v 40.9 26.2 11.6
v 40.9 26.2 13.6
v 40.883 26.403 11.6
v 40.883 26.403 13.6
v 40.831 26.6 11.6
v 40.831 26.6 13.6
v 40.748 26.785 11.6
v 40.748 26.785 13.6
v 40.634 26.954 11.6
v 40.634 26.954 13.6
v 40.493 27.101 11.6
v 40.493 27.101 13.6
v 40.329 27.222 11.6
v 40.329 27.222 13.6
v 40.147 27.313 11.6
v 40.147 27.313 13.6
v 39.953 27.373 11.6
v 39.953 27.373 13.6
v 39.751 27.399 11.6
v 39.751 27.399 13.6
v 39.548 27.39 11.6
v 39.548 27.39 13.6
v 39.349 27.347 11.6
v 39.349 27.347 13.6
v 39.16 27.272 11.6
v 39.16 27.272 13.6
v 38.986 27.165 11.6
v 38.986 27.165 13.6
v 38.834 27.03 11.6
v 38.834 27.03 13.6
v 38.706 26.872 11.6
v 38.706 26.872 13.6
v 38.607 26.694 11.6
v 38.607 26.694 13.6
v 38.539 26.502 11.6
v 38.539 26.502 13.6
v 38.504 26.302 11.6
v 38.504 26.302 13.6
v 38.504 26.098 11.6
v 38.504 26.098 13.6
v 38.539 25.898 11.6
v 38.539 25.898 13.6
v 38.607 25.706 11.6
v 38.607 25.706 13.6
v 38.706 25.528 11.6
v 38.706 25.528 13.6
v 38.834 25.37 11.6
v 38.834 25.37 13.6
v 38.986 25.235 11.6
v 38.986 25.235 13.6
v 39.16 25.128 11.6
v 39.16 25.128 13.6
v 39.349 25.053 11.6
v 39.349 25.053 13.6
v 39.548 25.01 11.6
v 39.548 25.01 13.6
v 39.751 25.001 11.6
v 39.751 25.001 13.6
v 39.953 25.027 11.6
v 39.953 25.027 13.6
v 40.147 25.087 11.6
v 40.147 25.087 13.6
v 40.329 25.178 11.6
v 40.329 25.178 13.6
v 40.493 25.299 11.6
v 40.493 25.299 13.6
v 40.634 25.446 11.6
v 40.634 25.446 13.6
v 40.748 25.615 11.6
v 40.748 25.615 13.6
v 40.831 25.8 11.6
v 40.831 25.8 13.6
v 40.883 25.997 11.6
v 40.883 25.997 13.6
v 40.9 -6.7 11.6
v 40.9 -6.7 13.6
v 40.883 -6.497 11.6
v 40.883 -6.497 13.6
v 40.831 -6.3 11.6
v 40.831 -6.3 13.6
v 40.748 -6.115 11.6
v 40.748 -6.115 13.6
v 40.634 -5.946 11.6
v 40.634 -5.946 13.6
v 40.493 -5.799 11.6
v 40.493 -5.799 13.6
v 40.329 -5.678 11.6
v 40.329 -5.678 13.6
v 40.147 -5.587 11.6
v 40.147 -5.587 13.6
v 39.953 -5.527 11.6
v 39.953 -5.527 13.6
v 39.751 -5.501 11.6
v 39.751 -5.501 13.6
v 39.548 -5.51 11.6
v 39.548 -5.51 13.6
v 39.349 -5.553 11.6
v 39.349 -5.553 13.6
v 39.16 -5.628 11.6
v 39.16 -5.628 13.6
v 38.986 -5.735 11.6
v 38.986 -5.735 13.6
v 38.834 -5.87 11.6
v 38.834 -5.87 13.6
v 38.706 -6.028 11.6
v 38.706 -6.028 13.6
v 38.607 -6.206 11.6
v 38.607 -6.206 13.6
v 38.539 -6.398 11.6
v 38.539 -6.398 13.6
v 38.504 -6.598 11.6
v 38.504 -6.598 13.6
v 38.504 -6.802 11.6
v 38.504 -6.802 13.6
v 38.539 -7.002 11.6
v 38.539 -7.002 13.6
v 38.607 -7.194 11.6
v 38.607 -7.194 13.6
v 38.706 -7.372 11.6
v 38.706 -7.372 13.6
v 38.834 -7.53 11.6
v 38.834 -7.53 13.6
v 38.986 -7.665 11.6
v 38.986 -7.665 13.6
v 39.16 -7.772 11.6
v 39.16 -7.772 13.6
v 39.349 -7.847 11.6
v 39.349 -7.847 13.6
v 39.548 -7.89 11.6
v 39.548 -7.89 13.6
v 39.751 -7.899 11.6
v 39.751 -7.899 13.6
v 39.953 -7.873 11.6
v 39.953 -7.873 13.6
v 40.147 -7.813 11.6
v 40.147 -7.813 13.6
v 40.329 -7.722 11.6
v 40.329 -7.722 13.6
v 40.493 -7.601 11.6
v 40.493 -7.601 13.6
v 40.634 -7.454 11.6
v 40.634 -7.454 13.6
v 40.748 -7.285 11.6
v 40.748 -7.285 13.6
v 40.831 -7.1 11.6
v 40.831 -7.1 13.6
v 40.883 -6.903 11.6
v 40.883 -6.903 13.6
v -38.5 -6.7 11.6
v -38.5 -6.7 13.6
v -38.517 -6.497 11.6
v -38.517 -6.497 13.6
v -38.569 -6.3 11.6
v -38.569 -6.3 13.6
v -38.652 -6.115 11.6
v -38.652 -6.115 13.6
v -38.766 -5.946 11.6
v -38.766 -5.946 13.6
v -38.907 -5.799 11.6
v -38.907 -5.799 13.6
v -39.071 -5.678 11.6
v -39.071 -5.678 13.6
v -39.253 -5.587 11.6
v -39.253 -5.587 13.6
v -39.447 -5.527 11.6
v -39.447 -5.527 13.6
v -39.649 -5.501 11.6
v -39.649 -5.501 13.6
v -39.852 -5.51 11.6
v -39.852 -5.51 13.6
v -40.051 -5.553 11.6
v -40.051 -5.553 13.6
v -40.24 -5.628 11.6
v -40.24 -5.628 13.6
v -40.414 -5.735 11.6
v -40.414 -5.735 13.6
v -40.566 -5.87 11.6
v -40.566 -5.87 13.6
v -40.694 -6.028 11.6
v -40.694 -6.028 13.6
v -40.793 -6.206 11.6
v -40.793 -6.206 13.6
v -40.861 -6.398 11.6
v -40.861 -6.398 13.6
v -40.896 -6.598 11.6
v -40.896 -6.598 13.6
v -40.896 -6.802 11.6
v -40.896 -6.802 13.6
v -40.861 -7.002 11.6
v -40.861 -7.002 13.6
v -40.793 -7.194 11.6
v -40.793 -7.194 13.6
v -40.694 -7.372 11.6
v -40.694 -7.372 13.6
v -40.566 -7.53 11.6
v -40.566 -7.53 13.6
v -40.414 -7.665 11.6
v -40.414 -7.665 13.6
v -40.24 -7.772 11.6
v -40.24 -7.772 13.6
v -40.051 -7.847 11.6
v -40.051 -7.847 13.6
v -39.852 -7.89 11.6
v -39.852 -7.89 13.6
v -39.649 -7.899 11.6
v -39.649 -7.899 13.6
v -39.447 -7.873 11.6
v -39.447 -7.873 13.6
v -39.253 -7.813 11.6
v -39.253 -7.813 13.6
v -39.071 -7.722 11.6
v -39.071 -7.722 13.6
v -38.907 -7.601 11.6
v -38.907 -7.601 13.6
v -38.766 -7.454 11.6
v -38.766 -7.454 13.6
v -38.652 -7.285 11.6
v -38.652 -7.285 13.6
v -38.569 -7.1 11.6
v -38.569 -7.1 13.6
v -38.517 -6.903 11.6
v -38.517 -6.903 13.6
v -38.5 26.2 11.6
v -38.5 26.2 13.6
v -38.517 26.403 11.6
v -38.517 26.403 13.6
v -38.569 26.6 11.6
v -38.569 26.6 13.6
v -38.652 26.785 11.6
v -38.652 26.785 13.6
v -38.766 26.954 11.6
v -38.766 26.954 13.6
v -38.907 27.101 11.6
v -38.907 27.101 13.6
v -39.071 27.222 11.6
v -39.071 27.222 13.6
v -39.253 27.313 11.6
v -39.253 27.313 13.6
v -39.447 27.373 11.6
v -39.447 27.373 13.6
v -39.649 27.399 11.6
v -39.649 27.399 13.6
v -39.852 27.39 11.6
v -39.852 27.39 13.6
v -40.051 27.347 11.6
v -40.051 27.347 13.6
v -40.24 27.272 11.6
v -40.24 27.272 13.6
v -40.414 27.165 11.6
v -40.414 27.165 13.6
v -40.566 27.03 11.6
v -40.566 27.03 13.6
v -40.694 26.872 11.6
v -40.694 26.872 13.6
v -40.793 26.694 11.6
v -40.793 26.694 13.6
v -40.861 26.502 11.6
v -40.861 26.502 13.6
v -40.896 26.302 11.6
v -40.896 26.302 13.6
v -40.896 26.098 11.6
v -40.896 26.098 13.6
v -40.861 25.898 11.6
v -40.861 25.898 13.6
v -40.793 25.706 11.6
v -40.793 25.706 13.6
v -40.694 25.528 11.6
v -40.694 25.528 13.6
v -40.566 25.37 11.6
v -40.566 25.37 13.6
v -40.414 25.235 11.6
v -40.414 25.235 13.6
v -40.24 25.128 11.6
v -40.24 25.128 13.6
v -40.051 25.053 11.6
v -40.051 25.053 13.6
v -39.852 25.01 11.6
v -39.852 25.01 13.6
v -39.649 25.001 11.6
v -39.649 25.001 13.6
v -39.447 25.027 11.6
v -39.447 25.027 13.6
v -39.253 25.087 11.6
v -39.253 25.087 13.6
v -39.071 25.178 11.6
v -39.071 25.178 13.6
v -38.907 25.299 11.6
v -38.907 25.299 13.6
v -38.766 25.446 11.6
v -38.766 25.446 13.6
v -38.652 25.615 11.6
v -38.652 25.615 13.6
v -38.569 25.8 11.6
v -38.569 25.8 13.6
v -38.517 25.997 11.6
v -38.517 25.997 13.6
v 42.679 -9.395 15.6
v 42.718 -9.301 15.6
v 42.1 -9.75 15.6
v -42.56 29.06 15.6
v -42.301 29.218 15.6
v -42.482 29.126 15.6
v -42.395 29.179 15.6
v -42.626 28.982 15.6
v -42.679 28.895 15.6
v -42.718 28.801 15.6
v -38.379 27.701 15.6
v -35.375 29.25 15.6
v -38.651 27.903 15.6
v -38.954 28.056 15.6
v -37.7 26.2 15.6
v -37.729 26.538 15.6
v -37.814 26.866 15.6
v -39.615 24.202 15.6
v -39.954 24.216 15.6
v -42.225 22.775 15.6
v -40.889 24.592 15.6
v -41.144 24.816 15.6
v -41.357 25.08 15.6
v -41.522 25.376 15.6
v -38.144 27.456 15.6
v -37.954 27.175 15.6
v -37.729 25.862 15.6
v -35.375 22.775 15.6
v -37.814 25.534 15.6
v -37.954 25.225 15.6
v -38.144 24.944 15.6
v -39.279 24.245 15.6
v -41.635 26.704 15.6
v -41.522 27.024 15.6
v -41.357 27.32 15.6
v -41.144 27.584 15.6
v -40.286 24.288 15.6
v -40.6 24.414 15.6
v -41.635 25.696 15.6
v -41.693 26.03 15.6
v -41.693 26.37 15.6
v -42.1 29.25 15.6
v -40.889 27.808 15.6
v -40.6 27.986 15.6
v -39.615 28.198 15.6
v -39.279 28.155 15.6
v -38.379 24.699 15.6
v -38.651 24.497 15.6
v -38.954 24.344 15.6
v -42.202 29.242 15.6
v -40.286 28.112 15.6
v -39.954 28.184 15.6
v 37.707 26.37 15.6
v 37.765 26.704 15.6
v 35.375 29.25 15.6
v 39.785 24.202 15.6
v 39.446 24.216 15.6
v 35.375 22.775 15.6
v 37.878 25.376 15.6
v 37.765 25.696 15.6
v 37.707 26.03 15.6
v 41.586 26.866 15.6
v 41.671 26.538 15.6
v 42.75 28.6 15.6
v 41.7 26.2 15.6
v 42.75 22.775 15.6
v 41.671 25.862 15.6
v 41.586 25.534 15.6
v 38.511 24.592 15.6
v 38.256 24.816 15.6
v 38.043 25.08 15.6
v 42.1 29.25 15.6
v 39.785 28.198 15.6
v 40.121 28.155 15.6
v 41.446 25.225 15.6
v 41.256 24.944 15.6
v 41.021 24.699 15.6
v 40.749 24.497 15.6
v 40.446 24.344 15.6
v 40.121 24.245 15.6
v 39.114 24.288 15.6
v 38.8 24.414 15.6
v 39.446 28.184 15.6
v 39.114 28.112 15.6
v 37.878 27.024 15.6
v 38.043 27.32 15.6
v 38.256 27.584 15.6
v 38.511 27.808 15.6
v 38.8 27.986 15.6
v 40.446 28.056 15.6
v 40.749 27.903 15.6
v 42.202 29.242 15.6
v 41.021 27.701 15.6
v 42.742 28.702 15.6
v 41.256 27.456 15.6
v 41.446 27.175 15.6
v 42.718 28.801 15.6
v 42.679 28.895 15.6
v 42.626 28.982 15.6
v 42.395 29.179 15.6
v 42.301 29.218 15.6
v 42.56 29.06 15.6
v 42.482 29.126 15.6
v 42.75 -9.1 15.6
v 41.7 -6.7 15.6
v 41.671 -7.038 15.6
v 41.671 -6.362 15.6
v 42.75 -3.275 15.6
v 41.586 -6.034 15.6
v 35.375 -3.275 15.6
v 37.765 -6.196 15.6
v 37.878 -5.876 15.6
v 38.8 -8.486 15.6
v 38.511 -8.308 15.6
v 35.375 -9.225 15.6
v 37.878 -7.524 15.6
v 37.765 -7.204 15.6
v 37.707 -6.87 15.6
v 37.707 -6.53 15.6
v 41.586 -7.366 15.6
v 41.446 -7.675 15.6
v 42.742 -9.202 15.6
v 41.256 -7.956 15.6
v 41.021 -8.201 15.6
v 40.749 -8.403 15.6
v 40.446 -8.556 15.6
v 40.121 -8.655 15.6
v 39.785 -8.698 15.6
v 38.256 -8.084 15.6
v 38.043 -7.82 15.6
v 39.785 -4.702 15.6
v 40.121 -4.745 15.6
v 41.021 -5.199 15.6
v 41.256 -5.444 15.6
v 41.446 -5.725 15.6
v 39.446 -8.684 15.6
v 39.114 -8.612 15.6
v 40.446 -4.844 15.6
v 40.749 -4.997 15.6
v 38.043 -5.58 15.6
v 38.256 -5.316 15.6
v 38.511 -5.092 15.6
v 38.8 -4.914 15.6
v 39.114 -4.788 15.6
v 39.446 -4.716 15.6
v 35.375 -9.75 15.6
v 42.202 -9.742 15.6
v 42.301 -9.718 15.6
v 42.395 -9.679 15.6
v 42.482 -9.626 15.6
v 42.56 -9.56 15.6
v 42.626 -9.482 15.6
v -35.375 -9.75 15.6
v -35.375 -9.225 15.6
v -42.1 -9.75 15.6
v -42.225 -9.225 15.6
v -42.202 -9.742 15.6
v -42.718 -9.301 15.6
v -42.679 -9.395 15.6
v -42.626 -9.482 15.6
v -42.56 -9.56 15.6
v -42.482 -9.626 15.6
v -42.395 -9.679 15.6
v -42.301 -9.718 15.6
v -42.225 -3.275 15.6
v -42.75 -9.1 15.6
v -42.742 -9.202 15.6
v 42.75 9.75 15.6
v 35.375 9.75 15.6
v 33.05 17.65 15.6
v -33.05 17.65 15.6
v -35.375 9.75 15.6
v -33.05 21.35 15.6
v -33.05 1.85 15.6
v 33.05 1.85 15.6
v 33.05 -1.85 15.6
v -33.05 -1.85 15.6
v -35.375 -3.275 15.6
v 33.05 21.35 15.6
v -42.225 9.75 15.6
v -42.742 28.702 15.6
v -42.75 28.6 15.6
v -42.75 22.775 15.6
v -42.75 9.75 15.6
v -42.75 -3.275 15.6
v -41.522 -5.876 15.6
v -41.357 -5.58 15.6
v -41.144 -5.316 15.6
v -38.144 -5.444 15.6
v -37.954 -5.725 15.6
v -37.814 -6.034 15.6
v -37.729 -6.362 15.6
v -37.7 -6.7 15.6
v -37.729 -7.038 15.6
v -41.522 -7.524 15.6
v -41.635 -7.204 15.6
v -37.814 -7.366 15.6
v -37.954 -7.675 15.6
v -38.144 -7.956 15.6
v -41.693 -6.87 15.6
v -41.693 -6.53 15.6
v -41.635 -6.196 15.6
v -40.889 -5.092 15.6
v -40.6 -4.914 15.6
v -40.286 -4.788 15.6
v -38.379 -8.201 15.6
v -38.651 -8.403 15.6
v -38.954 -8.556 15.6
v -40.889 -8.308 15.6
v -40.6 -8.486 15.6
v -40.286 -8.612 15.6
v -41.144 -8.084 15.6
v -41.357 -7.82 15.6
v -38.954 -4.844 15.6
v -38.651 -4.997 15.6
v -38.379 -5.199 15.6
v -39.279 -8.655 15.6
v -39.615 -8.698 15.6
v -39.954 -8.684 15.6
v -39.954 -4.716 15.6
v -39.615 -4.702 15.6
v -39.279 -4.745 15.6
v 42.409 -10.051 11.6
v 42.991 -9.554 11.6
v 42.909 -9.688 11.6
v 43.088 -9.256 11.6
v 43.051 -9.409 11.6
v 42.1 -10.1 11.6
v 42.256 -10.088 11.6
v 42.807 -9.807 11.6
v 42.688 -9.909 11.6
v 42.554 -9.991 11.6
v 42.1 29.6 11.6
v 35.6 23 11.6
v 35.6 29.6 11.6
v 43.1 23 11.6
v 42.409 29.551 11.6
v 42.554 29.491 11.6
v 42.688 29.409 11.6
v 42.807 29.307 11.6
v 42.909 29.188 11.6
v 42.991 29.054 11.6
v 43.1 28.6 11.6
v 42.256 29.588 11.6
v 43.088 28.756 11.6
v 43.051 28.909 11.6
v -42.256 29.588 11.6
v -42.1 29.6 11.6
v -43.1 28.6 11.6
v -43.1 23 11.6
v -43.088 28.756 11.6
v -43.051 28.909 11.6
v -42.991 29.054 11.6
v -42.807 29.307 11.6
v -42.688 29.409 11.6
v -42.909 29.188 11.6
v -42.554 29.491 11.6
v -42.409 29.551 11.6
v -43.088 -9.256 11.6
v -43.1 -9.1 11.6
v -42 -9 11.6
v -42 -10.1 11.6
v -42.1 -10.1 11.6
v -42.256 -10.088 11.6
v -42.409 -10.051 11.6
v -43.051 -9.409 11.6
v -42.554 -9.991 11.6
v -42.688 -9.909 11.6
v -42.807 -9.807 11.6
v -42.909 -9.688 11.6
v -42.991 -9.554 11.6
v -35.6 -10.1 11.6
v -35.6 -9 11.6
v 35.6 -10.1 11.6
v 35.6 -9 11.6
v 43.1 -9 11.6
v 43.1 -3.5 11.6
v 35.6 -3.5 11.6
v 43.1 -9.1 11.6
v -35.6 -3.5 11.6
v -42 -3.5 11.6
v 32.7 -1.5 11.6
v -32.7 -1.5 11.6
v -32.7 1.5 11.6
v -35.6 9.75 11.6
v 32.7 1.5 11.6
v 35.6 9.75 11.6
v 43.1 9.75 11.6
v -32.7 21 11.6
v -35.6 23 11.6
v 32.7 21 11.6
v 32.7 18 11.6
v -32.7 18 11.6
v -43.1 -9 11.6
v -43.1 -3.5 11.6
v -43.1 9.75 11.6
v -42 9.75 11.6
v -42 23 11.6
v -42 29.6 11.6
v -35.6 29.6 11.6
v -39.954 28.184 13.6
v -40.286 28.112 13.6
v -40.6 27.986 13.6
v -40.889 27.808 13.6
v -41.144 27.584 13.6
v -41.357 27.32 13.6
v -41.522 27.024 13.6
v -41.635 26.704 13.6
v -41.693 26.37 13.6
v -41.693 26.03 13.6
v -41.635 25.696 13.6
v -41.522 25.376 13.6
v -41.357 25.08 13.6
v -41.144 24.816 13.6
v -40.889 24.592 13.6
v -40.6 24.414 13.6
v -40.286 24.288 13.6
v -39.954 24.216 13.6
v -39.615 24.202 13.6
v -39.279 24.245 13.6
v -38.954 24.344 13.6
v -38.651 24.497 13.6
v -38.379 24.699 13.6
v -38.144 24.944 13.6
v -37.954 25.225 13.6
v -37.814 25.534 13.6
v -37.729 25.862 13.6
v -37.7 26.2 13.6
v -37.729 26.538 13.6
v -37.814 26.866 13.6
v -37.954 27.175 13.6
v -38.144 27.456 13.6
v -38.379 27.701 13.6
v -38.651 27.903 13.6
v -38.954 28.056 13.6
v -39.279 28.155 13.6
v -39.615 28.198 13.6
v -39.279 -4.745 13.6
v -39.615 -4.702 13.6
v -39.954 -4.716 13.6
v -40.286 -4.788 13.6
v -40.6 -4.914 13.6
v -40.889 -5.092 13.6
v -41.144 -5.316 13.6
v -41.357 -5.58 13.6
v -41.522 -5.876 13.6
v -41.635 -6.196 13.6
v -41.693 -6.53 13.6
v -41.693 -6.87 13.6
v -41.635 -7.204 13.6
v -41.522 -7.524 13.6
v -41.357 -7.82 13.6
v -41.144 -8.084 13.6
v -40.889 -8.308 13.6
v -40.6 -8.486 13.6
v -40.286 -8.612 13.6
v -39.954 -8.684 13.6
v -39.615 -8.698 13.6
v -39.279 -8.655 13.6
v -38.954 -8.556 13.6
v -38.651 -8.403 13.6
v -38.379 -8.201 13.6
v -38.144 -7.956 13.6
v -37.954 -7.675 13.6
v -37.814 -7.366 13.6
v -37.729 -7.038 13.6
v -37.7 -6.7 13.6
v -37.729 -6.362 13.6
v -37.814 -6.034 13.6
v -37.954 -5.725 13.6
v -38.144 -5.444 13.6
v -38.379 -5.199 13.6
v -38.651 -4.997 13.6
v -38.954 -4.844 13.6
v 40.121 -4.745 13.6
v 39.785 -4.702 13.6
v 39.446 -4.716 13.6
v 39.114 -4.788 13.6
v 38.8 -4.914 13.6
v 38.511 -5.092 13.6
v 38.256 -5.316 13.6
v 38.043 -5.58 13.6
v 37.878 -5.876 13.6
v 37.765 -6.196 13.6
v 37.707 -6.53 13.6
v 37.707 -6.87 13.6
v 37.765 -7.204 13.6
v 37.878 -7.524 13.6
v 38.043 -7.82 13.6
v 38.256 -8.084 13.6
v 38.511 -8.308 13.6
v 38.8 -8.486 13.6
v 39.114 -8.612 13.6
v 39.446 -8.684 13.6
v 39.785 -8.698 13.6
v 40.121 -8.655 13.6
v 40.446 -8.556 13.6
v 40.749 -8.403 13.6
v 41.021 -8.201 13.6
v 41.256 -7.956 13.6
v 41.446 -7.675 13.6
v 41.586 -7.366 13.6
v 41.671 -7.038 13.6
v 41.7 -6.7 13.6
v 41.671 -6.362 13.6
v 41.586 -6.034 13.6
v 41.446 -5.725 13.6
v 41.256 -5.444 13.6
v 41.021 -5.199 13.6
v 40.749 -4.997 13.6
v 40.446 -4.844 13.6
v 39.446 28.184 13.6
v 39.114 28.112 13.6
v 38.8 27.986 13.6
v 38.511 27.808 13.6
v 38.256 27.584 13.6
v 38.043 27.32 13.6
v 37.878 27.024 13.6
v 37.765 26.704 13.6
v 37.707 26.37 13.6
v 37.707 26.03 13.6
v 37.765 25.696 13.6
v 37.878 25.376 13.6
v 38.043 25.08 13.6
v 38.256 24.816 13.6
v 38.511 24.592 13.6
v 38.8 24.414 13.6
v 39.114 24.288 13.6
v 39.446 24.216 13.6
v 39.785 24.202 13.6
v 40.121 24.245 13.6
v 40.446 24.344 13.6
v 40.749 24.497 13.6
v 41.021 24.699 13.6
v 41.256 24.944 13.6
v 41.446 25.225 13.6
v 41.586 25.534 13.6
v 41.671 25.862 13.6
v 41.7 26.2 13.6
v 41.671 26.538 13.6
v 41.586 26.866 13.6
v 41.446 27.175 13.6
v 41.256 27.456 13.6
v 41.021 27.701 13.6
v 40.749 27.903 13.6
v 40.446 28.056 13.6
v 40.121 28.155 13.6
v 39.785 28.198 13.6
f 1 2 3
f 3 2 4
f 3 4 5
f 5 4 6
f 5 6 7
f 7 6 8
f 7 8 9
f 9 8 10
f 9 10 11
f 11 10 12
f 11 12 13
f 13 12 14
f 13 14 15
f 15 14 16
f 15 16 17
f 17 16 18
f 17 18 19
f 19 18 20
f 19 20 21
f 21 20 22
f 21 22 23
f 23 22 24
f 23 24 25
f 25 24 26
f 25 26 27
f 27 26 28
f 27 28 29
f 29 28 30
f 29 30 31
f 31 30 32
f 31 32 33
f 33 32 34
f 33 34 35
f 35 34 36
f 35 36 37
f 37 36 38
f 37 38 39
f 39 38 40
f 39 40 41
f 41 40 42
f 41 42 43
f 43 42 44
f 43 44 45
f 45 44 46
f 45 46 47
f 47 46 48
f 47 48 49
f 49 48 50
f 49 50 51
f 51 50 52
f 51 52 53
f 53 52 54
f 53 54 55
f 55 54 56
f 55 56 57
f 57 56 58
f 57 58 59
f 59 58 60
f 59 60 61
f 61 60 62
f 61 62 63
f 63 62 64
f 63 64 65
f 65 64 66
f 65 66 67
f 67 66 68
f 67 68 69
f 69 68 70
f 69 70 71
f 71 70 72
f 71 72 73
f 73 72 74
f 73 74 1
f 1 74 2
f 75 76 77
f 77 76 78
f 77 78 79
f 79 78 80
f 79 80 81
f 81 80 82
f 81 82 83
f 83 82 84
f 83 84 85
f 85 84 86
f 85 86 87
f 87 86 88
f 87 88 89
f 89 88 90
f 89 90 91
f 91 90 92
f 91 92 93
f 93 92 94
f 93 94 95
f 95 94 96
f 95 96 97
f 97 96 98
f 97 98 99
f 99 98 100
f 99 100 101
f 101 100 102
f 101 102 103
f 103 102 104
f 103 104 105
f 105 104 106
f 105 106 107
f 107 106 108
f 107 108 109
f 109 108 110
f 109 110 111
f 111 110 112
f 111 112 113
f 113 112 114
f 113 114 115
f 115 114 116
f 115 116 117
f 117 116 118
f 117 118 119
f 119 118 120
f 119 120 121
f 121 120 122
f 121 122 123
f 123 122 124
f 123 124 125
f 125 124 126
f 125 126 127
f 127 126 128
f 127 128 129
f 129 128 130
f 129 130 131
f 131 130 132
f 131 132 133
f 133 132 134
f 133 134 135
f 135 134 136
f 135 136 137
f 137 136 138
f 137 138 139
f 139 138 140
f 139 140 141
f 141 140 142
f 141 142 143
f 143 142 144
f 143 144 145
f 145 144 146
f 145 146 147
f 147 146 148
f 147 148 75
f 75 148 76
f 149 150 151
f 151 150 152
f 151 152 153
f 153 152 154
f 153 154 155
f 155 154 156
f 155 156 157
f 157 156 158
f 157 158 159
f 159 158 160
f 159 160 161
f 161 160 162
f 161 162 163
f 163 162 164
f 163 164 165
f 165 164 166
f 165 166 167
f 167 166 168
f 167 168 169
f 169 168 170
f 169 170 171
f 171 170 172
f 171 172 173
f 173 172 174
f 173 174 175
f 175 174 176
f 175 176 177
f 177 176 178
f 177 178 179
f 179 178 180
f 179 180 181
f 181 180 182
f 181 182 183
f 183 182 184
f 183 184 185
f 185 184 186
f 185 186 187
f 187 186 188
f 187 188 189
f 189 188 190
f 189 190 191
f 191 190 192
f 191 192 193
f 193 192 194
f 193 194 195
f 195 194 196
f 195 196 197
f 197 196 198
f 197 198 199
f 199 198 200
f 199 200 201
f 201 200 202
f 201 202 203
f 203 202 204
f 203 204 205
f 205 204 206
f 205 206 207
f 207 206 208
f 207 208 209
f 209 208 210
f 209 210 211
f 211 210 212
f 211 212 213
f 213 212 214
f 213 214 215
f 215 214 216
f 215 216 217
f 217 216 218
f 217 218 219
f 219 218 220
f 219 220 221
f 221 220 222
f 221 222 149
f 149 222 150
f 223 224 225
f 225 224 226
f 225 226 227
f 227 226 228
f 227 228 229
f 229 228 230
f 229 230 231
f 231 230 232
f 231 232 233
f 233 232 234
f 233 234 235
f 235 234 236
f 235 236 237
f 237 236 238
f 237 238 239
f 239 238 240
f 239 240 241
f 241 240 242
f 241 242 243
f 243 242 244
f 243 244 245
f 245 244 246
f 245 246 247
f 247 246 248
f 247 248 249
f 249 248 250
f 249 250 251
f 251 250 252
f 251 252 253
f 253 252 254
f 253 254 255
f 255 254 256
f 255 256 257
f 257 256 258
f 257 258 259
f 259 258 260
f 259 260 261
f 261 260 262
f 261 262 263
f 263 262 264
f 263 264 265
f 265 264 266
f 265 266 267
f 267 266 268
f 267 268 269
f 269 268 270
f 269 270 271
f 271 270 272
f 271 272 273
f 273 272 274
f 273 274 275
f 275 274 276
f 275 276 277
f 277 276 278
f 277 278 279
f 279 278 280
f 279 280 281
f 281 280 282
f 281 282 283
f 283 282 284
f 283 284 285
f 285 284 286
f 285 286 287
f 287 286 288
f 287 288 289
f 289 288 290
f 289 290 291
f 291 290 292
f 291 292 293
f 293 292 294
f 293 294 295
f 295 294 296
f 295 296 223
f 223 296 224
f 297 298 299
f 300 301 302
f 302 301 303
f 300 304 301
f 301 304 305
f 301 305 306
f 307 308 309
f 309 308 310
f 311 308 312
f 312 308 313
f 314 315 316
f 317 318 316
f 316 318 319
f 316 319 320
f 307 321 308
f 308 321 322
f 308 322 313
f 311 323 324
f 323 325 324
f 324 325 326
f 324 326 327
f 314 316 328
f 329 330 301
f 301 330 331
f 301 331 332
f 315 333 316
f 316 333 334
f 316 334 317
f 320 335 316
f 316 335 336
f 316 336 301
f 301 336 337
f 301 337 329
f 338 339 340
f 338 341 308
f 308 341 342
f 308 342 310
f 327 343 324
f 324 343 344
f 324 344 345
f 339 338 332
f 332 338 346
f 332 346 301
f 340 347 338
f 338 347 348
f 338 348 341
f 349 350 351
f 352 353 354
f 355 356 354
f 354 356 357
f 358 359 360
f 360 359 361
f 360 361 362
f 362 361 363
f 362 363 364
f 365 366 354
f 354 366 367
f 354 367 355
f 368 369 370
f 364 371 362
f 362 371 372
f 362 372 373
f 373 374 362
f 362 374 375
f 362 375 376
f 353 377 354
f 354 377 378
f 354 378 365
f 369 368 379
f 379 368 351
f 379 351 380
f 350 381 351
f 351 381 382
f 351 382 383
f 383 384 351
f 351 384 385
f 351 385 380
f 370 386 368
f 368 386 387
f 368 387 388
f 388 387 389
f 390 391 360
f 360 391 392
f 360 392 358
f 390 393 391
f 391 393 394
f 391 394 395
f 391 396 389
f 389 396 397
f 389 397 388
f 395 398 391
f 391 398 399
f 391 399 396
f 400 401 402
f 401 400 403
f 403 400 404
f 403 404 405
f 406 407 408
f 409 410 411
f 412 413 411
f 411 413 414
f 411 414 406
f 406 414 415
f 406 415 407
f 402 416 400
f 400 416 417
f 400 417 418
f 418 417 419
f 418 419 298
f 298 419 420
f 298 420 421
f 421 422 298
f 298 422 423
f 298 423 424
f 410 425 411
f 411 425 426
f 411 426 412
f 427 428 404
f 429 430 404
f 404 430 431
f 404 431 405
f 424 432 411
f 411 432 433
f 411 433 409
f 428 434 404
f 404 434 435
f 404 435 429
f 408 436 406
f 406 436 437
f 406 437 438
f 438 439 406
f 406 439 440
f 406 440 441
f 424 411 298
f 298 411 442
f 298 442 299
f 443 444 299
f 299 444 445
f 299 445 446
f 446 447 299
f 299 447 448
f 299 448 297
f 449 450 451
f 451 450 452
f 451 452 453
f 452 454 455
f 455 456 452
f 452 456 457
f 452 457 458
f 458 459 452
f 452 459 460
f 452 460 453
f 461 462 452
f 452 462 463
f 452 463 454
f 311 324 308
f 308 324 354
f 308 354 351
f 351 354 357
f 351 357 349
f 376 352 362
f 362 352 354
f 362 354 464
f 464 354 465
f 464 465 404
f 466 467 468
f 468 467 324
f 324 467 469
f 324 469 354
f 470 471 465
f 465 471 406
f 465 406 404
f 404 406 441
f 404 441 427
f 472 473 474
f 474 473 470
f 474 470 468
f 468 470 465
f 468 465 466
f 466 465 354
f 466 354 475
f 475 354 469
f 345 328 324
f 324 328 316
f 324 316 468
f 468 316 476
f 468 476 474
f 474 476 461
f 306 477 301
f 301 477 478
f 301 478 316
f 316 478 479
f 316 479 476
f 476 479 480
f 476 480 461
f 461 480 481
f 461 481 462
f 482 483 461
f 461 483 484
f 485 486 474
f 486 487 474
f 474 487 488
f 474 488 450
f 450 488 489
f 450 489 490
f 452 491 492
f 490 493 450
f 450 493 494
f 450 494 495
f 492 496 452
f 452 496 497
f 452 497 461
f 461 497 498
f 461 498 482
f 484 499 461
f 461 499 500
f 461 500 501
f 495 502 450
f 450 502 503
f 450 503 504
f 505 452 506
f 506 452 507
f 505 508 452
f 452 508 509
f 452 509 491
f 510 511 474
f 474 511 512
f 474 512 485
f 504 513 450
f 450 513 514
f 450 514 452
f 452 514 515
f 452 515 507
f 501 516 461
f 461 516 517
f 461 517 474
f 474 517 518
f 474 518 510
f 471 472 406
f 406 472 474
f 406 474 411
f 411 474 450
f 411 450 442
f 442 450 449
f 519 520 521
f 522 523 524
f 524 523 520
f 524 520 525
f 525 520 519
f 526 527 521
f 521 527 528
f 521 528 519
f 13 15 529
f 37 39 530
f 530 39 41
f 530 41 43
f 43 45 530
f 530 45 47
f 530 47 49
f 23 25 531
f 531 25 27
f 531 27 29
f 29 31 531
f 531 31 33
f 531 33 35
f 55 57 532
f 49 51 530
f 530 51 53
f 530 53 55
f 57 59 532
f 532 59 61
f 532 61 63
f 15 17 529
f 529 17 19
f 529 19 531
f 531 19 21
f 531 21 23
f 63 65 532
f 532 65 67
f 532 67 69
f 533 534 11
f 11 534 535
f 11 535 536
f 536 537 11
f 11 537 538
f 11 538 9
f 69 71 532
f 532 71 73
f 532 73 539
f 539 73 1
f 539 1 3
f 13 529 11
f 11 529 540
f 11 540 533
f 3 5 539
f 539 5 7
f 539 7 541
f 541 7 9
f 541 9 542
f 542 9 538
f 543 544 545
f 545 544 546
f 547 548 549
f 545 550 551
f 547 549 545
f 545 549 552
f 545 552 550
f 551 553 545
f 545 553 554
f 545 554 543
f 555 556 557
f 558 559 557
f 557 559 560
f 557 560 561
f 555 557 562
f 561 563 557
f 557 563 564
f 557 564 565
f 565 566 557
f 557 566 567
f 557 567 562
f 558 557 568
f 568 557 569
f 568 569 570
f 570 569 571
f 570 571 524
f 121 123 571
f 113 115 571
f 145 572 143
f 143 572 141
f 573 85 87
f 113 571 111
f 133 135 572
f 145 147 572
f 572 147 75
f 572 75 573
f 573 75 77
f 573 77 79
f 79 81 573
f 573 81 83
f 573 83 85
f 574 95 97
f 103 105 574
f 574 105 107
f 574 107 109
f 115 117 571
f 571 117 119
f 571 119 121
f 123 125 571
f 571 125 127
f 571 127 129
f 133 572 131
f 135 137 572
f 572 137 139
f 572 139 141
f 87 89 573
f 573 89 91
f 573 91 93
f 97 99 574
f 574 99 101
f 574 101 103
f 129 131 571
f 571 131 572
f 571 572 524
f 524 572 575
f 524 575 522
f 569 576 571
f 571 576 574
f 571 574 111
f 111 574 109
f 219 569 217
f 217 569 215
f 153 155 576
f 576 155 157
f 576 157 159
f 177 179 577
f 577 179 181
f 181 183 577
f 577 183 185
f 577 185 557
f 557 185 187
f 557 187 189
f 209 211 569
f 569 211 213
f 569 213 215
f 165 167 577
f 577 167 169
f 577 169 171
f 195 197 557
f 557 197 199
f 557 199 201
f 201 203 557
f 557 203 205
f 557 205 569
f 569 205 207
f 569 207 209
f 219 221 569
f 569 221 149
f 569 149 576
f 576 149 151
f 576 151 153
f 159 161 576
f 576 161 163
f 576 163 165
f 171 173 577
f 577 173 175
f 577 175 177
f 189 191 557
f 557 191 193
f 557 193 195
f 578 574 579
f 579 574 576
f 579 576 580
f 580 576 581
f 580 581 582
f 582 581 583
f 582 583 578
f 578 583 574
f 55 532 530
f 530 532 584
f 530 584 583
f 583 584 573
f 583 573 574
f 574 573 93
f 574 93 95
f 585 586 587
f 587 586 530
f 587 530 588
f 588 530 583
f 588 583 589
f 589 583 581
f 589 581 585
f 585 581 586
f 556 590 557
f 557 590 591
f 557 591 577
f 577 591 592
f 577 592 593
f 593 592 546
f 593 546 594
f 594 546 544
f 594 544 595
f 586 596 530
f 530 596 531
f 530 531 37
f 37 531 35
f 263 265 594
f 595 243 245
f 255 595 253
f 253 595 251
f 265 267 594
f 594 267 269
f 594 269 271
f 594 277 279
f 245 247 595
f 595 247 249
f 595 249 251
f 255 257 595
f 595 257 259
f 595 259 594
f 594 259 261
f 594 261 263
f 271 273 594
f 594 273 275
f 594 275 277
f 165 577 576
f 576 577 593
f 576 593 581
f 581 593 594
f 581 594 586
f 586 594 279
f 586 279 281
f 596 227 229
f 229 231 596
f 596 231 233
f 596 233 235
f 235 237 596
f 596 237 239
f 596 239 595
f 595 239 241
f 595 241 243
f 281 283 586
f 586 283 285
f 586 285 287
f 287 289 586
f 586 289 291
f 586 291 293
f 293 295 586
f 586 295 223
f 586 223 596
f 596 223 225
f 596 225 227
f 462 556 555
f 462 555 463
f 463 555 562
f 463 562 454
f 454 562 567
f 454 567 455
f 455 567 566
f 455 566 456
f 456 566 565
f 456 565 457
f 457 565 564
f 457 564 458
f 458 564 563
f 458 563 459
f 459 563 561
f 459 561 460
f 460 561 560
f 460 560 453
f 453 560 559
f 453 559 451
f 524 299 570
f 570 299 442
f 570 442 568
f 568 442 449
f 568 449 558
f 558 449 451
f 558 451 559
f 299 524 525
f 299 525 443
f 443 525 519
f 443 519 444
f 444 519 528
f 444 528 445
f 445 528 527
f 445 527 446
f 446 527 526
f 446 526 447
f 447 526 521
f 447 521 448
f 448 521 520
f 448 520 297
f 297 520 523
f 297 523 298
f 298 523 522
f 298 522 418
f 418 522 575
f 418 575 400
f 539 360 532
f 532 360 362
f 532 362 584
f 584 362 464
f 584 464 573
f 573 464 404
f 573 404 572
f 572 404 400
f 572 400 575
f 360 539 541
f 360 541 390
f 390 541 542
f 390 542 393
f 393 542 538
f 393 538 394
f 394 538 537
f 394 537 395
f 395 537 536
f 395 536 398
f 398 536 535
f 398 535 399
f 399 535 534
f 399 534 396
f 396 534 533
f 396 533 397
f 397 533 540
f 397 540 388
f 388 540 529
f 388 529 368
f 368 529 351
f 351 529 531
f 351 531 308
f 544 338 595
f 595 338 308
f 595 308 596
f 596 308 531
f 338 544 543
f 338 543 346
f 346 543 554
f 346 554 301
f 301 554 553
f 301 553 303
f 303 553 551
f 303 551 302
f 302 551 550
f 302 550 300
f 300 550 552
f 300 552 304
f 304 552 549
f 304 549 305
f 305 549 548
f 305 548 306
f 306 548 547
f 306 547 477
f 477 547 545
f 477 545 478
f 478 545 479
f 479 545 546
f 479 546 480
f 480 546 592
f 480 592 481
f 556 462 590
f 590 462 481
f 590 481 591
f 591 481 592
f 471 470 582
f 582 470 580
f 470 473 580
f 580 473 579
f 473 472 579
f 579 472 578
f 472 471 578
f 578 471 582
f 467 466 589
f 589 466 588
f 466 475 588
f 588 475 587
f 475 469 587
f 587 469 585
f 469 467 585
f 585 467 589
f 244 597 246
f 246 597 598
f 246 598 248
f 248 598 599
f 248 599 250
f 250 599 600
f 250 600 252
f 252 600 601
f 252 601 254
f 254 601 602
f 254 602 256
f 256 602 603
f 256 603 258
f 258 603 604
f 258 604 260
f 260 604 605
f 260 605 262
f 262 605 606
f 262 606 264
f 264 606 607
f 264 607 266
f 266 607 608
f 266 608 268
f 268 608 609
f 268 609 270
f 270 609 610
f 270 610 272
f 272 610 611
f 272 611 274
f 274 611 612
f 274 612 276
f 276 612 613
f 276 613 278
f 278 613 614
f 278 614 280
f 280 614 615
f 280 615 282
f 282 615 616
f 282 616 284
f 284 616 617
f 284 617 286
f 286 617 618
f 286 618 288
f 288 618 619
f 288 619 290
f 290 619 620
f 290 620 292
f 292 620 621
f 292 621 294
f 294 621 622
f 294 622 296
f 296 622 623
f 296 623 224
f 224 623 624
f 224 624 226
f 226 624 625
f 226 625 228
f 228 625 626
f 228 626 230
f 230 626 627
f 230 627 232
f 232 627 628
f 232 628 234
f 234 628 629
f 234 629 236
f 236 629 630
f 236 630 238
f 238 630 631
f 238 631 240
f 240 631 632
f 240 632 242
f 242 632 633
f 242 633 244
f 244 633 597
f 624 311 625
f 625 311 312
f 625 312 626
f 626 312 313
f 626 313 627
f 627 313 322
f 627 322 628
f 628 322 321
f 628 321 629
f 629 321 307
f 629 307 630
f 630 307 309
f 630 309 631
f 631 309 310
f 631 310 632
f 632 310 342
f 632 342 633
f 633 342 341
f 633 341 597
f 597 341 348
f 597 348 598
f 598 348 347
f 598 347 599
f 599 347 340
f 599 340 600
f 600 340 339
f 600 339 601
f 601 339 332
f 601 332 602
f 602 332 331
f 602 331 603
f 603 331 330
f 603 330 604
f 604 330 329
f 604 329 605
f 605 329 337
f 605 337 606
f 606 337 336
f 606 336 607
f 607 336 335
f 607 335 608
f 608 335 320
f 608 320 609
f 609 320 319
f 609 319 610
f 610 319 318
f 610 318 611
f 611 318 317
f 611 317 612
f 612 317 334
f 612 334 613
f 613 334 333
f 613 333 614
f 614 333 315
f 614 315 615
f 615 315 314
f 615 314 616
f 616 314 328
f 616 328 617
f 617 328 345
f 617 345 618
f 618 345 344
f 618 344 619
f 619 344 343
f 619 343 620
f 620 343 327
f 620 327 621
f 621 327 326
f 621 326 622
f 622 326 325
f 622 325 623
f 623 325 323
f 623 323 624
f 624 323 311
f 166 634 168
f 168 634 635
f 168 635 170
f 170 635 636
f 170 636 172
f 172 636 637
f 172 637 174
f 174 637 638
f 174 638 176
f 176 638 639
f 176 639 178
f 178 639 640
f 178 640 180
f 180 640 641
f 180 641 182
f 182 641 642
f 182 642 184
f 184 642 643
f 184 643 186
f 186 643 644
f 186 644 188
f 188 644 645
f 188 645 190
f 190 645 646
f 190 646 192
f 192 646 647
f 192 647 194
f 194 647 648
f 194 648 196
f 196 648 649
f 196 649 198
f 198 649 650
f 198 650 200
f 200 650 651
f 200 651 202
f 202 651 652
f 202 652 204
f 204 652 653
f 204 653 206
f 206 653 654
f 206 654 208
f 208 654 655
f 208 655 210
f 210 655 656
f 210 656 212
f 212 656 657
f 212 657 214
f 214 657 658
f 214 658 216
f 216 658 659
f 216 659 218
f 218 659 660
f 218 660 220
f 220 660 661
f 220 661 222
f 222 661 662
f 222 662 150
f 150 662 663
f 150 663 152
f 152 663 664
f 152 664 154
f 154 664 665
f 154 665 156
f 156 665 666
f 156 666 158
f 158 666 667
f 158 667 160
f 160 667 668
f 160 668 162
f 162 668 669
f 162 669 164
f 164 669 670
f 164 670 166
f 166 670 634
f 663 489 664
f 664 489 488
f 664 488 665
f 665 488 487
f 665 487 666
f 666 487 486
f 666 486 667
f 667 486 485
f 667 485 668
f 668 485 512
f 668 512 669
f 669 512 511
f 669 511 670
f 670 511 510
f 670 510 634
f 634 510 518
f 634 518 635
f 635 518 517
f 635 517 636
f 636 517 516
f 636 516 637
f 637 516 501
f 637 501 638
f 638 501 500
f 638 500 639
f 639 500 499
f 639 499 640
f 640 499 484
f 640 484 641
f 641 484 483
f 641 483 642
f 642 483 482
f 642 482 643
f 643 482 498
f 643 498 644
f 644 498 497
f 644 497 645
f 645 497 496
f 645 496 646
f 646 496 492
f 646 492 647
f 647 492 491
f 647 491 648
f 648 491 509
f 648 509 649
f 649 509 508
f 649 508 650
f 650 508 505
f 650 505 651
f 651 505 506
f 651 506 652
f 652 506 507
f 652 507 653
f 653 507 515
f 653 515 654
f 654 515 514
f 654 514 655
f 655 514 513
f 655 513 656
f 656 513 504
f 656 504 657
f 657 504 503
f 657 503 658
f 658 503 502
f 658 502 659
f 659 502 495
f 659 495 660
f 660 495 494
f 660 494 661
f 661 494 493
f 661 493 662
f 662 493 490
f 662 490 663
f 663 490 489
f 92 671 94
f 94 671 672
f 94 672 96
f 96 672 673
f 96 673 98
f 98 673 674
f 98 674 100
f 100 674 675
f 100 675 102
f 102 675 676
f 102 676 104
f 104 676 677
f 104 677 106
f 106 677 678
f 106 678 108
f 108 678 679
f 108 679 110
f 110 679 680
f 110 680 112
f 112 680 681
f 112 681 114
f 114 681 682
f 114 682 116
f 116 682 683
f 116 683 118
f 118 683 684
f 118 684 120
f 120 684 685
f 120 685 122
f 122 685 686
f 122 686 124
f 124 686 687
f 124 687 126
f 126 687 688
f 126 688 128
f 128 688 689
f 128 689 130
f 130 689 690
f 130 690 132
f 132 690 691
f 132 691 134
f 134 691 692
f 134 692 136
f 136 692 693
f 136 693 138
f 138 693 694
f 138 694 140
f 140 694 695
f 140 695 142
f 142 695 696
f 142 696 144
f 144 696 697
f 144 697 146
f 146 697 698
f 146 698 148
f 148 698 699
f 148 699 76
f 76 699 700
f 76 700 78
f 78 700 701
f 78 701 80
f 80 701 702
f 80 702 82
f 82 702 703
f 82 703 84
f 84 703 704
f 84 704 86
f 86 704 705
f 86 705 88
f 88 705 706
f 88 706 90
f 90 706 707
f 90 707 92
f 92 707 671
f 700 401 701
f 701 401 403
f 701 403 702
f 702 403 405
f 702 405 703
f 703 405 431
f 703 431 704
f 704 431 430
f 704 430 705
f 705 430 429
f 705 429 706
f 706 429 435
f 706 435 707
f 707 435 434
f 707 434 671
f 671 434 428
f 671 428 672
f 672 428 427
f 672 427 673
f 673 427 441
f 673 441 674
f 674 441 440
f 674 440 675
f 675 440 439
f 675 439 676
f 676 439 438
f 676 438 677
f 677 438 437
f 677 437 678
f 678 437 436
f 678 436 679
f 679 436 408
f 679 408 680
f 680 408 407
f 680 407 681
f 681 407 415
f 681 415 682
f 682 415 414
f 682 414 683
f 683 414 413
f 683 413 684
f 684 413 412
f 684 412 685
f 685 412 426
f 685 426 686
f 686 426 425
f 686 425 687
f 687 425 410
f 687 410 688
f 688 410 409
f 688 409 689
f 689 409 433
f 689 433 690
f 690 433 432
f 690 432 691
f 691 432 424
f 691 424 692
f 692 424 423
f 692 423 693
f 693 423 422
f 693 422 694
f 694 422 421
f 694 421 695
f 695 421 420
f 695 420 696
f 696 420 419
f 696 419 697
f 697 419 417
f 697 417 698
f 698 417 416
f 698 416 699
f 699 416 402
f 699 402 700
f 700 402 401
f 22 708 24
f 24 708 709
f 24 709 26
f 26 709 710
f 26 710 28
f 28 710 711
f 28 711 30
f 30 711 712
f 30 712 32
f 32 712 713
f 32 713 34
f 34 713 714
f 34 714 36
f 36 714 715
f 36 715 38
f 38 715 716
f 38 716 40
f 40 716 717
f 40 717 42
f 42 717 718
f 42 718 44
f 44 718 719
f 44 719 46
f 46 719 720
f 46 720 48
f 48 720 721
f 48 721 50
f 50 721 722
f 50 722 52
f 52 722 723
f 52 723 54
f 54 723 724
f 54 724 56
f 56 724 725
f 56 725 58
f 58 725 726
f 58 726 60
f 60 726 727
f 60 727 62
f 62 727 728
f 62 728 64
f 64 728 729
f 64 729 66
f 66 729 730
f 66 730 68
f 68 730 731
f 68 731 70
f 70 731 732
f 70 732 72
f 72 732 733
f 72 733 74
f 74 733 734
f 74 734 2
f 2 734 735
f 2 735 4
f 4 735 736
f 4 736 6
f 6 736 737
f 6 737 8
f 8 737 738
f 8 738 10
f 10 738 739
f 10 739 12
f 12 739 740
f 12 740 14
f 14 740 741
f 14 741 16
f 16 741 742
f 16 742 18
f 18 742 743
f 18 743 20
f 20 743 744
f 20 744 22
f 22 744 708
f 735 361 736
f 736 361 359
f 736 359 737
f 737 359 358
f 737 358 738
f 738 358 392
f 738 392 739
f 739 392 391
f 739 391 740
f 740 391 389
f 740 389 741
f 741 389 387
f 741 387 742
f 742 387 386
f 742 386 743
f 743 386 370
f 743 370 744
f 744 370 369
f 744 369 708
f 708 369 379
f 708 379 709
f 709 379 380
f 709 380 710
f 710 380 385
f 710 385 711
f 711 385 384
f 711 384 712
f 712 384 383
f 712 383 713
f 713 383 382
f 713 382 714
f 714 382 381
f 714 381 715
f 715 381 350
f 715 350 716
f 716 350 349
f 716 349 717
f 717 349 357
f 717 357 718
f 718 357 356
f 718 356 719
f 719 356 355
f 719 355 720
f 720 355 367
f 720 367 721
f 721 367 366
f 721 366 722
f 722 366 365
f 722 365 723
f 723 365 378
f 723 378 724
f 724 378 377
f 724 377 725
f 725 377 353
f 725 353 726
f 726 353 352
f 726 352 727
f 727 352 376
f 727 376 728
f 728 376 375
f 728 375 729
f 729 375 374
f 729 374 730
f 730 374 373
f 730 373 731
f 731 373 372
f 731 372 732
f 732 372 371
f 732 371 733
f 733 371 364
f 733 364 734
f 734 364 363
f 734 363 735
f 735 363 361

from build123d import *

# Parameters (mm, degrees)
SKETCH1_W           = 65.4
SKETCH1_H           = 3
BOSS_EXTRUDE1_DEPTH = 4
BOSS_EXTRUDE1_TAPER = 5
SKETCH2_R           = 1.2
CUT_EXTRUDE1_DEPTH  = 5.0000001
SKETCH3_R           = 2
CUT_EXTRUDE2_DEPTH  = 2


with BuildPart() as part:
    # Sketch1 → Boss-Extrude1 (new body)
    with BuildSketch(Plane.XY.offset(11.6)):
        with BuildLine():
            Line((-42.1, -10.1), (42.1, -10.1))
            ThreePointArc((42.1, -10.1), (42.807106781, -9.807106781), (43.1, -9.1))
            Line((43.1, -9.1), (43.1, 28.6))
            ThreePointArc((43.1, 28.6), (42.807106781, 29.307106781), (42.1, 29.6))
            Line((42.1, 29.6), (-42.1, 29.6))
            ThreePointArc((-42.1, 29.6), (-42.807106781, 29.307106781), (-43.1, 28.6))
            Line((-43.1, 28.6), (-43.1, -9.1))
            ThreePointArc((-43.1, -9.1), (-42.807106781, -9.807106781), (-42.1, -10.1))
        make_face()
        Rectangle(SKETCH1_W, SKETCH1_H, mode=Mode.SUBTRACT)
        with Locations((0, 19.5)):
            Rectangle(SKETCH1_W, SKETCH1_H, mode=Mode.SUBTRACT)
    extrude(amount=BOSS_EXTRUDE1_DEPTH, taper=BOSS_EXTRUDE1_TAPER)

    # Sketch2 → Cut-Extrude1 (cut, through all)
    with BuildSketch(Plane.XY.offset(15.6)):
        with Locations((-39.7, 26.2)):
            Circle(SKETCH2_R)
        with Locations((-39.7, -6.7)):
            Circle(SKETCH2_R)
        with Locations((39.7, -6.7)):
            Circle(SKETCH2_R)
        with Locations((39.7, 26.2)):
            Circle(SKETCH2_R)
    extrude(amount=-CUT_EXTRUDE1_DEPTH, mode=Mode.SUBTRACT)

    # Sketch3 → Cut-Extrude2 (cut)
    with BuildSketch(Plane.XY.offset(15.6)):
        with Locations((-39.7, 26.2)):
            Circle(SKETCH3_R)
        with Locations((-39.7, -6.7)):
            Circle(SKETCH3_R)
        with Locations((39.7, -6.7)):
            Circle(SKETCH3_R)
        with Locations((39.7, 26.2)):
            Circle(SKETCH3_R)
    extrude(amount=-CUT_EXTRUDE2_DEPTH, mode=Mode.SUBTRACT)


solid = part.part
